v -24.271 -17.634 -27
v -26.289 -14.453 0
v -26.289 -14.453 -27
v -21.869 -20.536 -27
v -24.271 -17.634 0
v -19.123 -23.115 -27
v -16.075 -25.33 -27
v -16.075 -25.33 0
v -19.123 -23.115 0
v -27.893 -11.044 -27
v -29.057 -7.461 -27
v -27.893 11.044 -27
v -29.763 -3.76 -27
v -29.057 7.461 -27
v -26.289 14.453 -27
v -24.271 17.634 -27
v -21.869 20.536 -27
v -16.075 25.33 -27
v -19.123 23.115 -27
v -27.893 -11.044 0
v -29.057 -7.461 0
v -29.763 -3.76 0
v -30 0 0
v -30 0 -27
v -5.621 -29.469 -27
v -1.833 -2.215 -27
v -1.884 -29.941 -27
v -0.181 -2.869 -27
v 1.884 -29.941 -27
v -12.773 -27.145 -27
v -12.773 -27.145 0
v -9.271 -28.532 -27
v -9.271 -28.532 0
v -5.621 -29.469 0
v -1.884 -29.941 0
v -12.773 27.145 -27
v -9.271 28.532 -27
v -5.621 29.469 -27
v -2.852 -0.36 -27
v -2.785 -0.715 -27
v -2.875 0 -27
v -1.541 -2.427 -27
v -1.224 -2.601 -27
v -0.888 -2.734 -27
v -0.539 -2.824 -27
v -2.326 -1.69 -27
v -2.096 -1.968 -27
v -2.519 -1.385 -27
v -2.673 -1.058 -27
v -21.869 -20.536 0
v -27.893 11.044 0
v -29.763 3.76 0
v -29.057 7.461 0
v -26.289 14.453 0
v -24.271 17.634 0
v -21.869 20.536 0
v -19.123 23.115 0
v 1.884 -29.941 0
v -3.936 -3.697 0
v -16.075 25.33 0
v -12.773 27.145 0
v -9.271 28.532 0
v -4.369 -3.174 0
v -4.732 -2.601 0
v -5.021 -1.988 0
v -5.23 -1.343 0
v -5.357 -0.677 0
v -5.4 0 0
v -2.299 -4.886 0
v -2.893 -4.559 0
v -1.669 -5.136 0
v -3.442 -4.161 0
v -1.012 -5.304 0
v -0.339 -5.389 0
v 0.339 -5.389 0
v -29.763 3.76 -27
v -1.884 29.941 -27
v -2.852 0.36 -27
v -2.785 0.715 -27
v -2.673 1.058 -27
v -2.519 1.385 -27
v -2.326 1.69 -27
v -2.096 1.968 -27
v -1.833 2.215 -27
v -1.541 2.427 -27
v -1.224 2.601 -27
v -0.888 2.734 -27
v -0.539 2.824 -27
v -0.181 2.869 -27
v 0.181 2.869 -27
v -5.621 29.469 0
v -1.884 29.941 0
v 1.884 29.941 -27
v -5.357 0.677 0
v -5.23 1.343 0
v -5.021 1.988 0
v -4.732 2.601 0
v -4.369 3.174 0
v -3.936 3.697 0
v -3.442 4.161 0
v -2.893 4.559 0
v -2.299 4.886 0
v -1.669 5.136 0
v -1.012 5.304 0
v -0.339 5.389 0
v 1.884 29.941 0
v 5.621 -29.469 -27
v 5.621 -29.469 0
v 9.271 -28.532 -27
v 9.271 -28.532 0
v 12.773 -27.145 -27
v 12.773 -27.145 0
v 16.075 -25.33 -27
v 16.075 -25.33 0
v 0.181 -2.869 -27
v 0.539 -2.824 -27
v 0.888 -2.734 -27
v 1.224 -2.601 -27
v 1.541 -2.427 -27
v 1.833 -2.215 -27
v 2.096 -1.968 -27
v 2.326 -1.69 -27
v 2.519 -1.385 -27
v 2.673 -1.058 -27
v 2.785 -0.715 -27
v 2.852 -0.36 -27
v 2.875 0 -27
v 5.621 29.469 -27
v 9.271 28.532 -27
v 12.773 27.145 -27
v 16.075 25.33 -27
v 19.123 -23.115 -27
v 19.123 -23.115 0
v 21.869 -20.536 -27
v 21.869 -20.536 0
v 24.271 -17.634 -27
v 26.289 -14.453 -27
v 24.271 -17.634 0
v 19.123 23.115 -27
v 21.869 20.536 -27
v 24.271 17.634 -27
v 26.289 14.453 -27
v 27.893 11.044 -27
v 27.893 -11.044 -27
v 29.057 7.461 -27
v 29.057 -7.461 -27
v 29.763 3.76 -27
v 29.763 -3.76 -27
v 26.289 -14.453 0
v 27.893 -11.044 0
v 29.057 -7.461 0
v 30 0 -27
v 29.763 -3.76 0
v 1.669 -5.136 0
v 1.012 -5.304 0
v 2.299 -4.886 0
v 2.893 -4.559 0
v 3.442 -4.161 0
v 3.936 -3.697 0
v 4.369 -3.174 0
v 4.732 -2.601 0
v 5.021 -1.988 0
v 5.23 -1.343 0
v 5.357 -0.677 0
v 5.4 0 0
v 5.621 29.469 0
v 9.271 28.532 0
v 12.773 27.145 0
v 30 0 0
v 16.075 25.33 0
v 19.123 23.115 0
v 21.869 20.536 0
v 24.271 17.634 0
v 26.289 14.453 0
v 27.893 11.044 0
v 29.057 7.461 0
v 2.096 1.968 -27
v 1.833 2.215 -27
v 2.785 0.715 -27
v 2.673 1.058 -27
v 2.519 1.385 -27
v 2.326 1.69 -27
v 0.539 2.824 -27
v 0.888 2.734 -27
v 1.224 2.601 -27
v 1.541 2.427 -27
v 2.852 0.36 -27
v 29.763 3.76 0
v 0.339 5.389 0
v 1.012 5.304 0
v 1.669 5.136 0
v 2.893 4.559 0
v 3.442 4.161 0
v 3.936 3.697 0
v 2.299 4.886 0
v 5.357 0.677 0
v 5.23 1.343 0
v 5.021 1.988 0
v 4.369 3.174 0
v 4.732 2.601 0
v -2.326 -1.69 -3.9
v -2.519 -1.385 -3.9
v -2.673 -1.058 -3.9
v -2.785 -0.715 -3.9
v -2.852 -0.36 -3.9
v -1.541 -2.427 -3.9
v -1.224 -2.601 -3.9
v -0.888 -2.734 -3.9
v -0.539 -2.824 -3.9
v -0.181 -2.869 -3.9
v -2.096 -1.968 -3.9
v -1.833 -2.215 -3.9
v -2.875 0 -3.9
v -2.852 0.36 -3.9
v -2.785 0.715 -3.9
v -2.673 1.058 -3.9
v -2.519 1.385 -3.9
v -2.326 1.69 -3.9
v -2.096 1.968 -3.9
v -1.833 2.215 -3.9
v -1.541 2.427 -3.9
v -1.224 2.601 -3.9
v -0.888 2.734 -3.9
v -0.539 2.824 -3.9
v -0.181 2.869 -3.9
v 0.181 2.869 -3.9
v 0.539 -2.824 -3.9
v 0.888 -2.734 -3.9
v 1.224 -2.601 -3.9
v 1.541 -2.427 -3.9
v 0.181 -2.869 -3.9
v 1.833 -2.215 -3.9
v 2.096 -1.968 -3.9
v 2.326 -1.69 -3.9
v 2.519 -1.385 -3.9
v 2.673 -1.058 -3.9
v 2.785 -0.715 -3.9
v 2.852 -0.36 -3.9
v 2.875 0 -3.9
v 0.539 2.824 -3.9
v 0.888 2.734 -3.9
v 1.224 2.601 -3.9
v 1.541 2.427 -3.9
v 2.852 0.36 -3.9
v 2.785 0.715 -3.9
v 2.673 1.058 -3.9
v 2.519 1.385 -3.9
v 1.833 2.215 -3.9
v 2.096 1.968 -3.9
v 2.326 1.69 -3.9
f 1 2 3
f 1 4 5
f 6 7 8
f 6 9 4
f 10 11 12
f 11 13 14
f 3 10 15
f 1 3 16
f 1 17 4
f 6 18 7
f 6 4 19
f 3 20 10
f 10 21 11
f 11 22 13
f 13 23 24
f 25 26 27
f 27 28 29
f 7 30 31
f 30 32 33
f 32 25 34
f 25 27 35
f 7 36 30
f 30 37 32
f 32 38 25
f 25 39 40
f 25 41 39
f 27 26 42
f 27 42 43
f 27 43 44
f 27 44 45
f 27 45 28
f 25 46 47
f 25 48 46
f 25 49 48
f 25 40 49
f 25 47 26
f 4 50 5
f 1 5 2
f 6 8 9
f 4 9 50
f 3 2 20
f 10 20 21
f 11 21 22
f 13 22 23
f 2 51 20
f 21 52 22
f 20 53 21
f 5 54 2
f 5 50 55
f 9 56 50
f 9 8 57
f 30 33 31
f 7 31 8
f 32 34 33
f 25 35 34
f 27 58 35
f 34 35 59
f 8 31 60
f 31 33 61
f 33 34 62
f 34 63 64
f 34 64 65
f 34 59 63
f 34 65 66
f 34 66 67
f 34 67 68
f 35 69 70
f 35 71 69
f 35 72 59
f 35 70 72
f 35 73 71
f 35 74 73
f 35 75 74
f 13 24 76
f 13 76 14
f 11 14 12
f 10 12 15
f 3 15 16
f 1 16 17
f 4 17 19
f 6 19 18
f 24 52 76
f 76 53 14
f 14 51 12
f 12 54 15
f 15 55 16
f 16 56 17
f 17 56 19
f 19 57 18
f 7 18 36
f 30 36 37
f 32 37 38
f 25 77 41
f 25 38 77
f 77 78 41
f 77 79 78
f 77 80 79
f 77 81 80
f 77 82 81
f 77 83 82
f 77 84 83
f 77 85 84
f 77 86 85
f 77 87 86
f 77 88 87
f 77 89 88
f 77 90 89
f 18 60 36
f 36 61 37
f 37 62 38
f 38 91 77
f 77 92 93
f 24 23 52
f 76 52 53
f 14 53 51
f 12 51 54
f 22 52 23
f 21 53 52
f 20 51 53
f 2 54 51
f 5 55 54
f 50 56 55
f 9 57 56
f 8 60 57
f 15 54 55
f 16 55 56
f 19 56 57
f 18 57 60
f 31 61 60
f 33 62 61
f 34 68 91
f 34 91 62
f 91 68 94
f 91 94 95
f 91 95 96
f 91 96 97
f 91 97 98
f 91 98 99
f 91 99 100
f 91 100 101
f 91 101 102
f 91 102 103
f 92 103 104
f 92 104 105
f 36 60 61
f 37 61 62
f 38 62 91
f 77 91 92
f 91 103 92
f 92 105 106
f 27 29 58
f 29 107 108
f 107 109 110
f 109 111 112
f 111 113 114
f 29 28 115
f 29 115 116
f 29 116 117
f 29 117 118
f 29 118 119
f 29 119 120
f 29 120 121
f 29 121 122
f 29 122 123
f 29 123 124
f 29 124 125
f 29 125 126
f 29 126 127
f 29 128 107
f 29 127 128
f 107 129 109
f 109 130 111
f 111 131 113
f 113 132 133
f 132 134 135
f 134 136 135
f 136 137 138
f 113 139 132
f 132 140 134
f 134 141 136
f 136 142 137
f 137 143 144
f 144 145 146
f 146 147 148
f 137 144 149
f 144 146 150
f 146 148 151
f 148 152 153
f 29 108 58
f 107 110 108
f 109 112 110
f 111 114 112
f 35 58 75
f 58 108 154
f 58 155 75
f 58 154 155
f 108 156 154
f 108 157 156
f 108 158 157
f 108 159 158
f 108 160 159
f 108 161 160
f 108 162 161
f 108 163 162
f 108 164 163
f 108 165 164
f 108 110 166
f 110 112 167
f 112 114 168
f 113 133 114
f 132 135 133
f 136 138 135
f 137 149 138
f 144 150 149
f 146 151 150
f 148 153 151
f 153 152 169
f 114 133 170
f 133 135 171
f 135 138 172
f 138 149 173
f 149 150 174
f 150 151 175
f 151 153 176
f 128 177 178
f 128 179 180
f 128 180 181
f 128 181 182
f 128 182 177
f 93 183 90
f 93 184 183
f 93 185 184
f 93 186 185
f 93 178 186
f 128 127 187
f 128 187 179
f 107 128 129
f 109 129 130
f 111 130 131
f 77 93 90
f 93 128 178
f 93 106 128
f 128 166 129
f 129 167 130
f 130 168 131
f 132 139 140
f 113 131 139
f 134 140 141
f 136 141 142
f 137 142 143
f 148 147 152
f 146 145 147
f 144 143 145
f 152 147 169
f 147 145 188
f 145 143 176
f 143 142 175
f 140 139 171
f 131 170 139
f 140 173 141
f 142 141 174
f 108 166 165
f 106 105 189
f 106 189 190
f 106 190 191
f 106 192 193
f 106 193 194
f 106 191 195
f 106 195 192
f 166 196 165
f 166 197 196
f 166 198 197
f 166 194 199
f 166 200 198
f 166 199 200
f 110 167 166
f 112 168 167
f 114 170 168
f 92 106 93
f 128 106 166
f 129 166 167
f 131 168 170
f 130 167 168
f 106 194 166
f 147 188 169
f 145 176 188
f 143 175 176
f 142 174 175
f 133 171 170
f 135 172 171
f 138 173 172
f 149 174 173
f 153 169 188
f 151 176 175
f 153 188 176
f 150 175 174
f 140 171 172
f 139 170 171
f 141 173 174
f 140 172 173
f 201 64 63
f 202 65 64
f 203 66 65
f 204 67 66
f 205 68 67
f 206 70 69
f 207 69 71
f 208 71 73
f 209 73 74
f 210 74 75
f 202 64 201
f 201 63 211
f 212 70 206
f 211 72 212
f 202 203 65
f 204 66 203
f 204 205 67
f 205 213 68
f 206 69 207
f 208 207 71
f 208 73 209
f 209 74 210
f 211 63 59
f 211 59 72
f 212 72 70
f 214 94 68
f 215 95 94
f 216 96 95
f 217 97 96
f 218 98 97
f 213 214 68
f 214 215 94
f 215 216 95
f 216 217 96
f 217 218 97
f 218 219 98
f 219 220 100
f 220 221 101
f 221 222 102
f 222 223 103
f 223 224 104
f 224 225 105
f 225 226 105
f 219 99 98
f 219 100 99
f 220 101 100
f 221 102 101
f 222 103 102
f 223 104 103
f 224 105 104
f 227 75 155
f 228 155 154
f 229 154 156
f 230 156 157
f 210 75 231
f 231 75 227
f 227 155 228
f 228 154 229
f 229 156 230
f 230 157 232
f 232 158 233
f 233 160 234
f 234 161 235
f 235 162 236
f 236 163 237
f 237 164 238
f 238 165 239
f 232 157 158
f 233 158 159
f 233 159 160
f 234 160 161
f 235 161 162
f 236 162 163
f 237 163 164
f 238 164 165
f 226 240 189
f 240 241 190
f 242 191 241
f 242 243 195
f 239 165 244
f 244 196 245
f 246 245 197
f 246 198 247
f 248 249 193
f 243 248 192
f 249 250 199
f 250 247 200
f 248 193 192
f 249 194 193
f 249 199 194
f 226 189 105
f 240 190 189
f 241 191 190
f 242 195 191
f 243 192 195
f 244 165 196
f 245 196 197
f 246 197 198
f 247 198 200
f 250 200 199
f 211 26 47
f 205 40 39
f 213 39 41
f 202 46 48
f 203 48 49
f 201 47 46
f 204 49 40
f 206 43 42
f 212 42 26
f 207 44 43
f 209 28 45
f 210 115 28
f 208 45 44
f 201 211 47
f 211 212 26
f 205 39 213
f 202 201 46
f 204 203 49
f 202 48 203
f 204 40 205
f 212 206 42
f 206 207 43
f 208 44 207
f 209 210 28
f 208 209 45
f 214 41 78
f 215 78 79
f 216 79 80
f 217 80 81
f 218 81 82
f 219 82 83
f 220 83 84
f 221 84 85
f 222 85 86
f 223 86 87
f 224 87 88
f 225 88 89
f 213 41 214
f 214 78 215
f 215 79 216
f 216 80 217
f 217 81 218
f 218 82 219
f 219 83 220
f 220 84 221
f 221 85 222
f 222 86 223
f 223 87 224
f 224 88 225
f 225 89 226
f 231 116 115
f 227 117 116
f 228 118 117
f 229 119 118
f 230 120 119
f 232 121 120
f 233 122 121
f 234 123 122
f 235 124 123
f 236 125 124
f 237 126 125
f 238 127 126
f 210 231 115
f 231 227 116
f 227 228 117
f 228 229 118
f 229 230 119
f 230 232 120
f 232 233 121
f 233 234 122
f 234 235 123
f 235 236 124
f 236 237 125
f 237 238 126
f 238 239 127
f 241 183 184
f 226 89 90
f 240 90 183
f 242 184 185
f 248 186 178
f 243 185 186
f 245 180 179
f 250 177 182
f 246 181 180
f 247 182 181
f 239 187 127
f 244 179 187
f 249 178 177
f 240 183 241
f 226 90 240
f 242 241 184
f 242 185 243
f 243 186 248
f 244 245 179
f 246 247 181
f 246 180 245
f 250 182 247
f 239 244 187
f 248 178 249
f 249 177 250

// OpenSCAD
$fn = 50;

difference() {
	union() {
		translate(v = [0, 0, -27.0]) {
			cylinder(h = 27, r = 30.0);
		}
		#translate(v = [0, 0, -30.0]) {
			cylinder(h = 30, r = 2.875);
		}
	}
	union() {
		translate(v = [0, 0, 0]) {
			rotate(a = [0, 0, 0]) {
				difference() {
					union() {
						translate(v = [0, 0, -30.0]) {
							cylinder(h = 30, r = 2.6);
						}
						translate(v = [0, 0, -3.9]) {
							cylinder(h = 3.9, r1 = 2.875, r2 = 5.4);
						}
						translate(v = [0, 0, -30.0]) {
							cylinder(h = 30, r = 2.875);
						}
						translate(v = [0, 0, -30.0]) {
							cylinder(h = 30, r = 2.6);
						}
					}
					union();
				}
			}
		}
	}
}
